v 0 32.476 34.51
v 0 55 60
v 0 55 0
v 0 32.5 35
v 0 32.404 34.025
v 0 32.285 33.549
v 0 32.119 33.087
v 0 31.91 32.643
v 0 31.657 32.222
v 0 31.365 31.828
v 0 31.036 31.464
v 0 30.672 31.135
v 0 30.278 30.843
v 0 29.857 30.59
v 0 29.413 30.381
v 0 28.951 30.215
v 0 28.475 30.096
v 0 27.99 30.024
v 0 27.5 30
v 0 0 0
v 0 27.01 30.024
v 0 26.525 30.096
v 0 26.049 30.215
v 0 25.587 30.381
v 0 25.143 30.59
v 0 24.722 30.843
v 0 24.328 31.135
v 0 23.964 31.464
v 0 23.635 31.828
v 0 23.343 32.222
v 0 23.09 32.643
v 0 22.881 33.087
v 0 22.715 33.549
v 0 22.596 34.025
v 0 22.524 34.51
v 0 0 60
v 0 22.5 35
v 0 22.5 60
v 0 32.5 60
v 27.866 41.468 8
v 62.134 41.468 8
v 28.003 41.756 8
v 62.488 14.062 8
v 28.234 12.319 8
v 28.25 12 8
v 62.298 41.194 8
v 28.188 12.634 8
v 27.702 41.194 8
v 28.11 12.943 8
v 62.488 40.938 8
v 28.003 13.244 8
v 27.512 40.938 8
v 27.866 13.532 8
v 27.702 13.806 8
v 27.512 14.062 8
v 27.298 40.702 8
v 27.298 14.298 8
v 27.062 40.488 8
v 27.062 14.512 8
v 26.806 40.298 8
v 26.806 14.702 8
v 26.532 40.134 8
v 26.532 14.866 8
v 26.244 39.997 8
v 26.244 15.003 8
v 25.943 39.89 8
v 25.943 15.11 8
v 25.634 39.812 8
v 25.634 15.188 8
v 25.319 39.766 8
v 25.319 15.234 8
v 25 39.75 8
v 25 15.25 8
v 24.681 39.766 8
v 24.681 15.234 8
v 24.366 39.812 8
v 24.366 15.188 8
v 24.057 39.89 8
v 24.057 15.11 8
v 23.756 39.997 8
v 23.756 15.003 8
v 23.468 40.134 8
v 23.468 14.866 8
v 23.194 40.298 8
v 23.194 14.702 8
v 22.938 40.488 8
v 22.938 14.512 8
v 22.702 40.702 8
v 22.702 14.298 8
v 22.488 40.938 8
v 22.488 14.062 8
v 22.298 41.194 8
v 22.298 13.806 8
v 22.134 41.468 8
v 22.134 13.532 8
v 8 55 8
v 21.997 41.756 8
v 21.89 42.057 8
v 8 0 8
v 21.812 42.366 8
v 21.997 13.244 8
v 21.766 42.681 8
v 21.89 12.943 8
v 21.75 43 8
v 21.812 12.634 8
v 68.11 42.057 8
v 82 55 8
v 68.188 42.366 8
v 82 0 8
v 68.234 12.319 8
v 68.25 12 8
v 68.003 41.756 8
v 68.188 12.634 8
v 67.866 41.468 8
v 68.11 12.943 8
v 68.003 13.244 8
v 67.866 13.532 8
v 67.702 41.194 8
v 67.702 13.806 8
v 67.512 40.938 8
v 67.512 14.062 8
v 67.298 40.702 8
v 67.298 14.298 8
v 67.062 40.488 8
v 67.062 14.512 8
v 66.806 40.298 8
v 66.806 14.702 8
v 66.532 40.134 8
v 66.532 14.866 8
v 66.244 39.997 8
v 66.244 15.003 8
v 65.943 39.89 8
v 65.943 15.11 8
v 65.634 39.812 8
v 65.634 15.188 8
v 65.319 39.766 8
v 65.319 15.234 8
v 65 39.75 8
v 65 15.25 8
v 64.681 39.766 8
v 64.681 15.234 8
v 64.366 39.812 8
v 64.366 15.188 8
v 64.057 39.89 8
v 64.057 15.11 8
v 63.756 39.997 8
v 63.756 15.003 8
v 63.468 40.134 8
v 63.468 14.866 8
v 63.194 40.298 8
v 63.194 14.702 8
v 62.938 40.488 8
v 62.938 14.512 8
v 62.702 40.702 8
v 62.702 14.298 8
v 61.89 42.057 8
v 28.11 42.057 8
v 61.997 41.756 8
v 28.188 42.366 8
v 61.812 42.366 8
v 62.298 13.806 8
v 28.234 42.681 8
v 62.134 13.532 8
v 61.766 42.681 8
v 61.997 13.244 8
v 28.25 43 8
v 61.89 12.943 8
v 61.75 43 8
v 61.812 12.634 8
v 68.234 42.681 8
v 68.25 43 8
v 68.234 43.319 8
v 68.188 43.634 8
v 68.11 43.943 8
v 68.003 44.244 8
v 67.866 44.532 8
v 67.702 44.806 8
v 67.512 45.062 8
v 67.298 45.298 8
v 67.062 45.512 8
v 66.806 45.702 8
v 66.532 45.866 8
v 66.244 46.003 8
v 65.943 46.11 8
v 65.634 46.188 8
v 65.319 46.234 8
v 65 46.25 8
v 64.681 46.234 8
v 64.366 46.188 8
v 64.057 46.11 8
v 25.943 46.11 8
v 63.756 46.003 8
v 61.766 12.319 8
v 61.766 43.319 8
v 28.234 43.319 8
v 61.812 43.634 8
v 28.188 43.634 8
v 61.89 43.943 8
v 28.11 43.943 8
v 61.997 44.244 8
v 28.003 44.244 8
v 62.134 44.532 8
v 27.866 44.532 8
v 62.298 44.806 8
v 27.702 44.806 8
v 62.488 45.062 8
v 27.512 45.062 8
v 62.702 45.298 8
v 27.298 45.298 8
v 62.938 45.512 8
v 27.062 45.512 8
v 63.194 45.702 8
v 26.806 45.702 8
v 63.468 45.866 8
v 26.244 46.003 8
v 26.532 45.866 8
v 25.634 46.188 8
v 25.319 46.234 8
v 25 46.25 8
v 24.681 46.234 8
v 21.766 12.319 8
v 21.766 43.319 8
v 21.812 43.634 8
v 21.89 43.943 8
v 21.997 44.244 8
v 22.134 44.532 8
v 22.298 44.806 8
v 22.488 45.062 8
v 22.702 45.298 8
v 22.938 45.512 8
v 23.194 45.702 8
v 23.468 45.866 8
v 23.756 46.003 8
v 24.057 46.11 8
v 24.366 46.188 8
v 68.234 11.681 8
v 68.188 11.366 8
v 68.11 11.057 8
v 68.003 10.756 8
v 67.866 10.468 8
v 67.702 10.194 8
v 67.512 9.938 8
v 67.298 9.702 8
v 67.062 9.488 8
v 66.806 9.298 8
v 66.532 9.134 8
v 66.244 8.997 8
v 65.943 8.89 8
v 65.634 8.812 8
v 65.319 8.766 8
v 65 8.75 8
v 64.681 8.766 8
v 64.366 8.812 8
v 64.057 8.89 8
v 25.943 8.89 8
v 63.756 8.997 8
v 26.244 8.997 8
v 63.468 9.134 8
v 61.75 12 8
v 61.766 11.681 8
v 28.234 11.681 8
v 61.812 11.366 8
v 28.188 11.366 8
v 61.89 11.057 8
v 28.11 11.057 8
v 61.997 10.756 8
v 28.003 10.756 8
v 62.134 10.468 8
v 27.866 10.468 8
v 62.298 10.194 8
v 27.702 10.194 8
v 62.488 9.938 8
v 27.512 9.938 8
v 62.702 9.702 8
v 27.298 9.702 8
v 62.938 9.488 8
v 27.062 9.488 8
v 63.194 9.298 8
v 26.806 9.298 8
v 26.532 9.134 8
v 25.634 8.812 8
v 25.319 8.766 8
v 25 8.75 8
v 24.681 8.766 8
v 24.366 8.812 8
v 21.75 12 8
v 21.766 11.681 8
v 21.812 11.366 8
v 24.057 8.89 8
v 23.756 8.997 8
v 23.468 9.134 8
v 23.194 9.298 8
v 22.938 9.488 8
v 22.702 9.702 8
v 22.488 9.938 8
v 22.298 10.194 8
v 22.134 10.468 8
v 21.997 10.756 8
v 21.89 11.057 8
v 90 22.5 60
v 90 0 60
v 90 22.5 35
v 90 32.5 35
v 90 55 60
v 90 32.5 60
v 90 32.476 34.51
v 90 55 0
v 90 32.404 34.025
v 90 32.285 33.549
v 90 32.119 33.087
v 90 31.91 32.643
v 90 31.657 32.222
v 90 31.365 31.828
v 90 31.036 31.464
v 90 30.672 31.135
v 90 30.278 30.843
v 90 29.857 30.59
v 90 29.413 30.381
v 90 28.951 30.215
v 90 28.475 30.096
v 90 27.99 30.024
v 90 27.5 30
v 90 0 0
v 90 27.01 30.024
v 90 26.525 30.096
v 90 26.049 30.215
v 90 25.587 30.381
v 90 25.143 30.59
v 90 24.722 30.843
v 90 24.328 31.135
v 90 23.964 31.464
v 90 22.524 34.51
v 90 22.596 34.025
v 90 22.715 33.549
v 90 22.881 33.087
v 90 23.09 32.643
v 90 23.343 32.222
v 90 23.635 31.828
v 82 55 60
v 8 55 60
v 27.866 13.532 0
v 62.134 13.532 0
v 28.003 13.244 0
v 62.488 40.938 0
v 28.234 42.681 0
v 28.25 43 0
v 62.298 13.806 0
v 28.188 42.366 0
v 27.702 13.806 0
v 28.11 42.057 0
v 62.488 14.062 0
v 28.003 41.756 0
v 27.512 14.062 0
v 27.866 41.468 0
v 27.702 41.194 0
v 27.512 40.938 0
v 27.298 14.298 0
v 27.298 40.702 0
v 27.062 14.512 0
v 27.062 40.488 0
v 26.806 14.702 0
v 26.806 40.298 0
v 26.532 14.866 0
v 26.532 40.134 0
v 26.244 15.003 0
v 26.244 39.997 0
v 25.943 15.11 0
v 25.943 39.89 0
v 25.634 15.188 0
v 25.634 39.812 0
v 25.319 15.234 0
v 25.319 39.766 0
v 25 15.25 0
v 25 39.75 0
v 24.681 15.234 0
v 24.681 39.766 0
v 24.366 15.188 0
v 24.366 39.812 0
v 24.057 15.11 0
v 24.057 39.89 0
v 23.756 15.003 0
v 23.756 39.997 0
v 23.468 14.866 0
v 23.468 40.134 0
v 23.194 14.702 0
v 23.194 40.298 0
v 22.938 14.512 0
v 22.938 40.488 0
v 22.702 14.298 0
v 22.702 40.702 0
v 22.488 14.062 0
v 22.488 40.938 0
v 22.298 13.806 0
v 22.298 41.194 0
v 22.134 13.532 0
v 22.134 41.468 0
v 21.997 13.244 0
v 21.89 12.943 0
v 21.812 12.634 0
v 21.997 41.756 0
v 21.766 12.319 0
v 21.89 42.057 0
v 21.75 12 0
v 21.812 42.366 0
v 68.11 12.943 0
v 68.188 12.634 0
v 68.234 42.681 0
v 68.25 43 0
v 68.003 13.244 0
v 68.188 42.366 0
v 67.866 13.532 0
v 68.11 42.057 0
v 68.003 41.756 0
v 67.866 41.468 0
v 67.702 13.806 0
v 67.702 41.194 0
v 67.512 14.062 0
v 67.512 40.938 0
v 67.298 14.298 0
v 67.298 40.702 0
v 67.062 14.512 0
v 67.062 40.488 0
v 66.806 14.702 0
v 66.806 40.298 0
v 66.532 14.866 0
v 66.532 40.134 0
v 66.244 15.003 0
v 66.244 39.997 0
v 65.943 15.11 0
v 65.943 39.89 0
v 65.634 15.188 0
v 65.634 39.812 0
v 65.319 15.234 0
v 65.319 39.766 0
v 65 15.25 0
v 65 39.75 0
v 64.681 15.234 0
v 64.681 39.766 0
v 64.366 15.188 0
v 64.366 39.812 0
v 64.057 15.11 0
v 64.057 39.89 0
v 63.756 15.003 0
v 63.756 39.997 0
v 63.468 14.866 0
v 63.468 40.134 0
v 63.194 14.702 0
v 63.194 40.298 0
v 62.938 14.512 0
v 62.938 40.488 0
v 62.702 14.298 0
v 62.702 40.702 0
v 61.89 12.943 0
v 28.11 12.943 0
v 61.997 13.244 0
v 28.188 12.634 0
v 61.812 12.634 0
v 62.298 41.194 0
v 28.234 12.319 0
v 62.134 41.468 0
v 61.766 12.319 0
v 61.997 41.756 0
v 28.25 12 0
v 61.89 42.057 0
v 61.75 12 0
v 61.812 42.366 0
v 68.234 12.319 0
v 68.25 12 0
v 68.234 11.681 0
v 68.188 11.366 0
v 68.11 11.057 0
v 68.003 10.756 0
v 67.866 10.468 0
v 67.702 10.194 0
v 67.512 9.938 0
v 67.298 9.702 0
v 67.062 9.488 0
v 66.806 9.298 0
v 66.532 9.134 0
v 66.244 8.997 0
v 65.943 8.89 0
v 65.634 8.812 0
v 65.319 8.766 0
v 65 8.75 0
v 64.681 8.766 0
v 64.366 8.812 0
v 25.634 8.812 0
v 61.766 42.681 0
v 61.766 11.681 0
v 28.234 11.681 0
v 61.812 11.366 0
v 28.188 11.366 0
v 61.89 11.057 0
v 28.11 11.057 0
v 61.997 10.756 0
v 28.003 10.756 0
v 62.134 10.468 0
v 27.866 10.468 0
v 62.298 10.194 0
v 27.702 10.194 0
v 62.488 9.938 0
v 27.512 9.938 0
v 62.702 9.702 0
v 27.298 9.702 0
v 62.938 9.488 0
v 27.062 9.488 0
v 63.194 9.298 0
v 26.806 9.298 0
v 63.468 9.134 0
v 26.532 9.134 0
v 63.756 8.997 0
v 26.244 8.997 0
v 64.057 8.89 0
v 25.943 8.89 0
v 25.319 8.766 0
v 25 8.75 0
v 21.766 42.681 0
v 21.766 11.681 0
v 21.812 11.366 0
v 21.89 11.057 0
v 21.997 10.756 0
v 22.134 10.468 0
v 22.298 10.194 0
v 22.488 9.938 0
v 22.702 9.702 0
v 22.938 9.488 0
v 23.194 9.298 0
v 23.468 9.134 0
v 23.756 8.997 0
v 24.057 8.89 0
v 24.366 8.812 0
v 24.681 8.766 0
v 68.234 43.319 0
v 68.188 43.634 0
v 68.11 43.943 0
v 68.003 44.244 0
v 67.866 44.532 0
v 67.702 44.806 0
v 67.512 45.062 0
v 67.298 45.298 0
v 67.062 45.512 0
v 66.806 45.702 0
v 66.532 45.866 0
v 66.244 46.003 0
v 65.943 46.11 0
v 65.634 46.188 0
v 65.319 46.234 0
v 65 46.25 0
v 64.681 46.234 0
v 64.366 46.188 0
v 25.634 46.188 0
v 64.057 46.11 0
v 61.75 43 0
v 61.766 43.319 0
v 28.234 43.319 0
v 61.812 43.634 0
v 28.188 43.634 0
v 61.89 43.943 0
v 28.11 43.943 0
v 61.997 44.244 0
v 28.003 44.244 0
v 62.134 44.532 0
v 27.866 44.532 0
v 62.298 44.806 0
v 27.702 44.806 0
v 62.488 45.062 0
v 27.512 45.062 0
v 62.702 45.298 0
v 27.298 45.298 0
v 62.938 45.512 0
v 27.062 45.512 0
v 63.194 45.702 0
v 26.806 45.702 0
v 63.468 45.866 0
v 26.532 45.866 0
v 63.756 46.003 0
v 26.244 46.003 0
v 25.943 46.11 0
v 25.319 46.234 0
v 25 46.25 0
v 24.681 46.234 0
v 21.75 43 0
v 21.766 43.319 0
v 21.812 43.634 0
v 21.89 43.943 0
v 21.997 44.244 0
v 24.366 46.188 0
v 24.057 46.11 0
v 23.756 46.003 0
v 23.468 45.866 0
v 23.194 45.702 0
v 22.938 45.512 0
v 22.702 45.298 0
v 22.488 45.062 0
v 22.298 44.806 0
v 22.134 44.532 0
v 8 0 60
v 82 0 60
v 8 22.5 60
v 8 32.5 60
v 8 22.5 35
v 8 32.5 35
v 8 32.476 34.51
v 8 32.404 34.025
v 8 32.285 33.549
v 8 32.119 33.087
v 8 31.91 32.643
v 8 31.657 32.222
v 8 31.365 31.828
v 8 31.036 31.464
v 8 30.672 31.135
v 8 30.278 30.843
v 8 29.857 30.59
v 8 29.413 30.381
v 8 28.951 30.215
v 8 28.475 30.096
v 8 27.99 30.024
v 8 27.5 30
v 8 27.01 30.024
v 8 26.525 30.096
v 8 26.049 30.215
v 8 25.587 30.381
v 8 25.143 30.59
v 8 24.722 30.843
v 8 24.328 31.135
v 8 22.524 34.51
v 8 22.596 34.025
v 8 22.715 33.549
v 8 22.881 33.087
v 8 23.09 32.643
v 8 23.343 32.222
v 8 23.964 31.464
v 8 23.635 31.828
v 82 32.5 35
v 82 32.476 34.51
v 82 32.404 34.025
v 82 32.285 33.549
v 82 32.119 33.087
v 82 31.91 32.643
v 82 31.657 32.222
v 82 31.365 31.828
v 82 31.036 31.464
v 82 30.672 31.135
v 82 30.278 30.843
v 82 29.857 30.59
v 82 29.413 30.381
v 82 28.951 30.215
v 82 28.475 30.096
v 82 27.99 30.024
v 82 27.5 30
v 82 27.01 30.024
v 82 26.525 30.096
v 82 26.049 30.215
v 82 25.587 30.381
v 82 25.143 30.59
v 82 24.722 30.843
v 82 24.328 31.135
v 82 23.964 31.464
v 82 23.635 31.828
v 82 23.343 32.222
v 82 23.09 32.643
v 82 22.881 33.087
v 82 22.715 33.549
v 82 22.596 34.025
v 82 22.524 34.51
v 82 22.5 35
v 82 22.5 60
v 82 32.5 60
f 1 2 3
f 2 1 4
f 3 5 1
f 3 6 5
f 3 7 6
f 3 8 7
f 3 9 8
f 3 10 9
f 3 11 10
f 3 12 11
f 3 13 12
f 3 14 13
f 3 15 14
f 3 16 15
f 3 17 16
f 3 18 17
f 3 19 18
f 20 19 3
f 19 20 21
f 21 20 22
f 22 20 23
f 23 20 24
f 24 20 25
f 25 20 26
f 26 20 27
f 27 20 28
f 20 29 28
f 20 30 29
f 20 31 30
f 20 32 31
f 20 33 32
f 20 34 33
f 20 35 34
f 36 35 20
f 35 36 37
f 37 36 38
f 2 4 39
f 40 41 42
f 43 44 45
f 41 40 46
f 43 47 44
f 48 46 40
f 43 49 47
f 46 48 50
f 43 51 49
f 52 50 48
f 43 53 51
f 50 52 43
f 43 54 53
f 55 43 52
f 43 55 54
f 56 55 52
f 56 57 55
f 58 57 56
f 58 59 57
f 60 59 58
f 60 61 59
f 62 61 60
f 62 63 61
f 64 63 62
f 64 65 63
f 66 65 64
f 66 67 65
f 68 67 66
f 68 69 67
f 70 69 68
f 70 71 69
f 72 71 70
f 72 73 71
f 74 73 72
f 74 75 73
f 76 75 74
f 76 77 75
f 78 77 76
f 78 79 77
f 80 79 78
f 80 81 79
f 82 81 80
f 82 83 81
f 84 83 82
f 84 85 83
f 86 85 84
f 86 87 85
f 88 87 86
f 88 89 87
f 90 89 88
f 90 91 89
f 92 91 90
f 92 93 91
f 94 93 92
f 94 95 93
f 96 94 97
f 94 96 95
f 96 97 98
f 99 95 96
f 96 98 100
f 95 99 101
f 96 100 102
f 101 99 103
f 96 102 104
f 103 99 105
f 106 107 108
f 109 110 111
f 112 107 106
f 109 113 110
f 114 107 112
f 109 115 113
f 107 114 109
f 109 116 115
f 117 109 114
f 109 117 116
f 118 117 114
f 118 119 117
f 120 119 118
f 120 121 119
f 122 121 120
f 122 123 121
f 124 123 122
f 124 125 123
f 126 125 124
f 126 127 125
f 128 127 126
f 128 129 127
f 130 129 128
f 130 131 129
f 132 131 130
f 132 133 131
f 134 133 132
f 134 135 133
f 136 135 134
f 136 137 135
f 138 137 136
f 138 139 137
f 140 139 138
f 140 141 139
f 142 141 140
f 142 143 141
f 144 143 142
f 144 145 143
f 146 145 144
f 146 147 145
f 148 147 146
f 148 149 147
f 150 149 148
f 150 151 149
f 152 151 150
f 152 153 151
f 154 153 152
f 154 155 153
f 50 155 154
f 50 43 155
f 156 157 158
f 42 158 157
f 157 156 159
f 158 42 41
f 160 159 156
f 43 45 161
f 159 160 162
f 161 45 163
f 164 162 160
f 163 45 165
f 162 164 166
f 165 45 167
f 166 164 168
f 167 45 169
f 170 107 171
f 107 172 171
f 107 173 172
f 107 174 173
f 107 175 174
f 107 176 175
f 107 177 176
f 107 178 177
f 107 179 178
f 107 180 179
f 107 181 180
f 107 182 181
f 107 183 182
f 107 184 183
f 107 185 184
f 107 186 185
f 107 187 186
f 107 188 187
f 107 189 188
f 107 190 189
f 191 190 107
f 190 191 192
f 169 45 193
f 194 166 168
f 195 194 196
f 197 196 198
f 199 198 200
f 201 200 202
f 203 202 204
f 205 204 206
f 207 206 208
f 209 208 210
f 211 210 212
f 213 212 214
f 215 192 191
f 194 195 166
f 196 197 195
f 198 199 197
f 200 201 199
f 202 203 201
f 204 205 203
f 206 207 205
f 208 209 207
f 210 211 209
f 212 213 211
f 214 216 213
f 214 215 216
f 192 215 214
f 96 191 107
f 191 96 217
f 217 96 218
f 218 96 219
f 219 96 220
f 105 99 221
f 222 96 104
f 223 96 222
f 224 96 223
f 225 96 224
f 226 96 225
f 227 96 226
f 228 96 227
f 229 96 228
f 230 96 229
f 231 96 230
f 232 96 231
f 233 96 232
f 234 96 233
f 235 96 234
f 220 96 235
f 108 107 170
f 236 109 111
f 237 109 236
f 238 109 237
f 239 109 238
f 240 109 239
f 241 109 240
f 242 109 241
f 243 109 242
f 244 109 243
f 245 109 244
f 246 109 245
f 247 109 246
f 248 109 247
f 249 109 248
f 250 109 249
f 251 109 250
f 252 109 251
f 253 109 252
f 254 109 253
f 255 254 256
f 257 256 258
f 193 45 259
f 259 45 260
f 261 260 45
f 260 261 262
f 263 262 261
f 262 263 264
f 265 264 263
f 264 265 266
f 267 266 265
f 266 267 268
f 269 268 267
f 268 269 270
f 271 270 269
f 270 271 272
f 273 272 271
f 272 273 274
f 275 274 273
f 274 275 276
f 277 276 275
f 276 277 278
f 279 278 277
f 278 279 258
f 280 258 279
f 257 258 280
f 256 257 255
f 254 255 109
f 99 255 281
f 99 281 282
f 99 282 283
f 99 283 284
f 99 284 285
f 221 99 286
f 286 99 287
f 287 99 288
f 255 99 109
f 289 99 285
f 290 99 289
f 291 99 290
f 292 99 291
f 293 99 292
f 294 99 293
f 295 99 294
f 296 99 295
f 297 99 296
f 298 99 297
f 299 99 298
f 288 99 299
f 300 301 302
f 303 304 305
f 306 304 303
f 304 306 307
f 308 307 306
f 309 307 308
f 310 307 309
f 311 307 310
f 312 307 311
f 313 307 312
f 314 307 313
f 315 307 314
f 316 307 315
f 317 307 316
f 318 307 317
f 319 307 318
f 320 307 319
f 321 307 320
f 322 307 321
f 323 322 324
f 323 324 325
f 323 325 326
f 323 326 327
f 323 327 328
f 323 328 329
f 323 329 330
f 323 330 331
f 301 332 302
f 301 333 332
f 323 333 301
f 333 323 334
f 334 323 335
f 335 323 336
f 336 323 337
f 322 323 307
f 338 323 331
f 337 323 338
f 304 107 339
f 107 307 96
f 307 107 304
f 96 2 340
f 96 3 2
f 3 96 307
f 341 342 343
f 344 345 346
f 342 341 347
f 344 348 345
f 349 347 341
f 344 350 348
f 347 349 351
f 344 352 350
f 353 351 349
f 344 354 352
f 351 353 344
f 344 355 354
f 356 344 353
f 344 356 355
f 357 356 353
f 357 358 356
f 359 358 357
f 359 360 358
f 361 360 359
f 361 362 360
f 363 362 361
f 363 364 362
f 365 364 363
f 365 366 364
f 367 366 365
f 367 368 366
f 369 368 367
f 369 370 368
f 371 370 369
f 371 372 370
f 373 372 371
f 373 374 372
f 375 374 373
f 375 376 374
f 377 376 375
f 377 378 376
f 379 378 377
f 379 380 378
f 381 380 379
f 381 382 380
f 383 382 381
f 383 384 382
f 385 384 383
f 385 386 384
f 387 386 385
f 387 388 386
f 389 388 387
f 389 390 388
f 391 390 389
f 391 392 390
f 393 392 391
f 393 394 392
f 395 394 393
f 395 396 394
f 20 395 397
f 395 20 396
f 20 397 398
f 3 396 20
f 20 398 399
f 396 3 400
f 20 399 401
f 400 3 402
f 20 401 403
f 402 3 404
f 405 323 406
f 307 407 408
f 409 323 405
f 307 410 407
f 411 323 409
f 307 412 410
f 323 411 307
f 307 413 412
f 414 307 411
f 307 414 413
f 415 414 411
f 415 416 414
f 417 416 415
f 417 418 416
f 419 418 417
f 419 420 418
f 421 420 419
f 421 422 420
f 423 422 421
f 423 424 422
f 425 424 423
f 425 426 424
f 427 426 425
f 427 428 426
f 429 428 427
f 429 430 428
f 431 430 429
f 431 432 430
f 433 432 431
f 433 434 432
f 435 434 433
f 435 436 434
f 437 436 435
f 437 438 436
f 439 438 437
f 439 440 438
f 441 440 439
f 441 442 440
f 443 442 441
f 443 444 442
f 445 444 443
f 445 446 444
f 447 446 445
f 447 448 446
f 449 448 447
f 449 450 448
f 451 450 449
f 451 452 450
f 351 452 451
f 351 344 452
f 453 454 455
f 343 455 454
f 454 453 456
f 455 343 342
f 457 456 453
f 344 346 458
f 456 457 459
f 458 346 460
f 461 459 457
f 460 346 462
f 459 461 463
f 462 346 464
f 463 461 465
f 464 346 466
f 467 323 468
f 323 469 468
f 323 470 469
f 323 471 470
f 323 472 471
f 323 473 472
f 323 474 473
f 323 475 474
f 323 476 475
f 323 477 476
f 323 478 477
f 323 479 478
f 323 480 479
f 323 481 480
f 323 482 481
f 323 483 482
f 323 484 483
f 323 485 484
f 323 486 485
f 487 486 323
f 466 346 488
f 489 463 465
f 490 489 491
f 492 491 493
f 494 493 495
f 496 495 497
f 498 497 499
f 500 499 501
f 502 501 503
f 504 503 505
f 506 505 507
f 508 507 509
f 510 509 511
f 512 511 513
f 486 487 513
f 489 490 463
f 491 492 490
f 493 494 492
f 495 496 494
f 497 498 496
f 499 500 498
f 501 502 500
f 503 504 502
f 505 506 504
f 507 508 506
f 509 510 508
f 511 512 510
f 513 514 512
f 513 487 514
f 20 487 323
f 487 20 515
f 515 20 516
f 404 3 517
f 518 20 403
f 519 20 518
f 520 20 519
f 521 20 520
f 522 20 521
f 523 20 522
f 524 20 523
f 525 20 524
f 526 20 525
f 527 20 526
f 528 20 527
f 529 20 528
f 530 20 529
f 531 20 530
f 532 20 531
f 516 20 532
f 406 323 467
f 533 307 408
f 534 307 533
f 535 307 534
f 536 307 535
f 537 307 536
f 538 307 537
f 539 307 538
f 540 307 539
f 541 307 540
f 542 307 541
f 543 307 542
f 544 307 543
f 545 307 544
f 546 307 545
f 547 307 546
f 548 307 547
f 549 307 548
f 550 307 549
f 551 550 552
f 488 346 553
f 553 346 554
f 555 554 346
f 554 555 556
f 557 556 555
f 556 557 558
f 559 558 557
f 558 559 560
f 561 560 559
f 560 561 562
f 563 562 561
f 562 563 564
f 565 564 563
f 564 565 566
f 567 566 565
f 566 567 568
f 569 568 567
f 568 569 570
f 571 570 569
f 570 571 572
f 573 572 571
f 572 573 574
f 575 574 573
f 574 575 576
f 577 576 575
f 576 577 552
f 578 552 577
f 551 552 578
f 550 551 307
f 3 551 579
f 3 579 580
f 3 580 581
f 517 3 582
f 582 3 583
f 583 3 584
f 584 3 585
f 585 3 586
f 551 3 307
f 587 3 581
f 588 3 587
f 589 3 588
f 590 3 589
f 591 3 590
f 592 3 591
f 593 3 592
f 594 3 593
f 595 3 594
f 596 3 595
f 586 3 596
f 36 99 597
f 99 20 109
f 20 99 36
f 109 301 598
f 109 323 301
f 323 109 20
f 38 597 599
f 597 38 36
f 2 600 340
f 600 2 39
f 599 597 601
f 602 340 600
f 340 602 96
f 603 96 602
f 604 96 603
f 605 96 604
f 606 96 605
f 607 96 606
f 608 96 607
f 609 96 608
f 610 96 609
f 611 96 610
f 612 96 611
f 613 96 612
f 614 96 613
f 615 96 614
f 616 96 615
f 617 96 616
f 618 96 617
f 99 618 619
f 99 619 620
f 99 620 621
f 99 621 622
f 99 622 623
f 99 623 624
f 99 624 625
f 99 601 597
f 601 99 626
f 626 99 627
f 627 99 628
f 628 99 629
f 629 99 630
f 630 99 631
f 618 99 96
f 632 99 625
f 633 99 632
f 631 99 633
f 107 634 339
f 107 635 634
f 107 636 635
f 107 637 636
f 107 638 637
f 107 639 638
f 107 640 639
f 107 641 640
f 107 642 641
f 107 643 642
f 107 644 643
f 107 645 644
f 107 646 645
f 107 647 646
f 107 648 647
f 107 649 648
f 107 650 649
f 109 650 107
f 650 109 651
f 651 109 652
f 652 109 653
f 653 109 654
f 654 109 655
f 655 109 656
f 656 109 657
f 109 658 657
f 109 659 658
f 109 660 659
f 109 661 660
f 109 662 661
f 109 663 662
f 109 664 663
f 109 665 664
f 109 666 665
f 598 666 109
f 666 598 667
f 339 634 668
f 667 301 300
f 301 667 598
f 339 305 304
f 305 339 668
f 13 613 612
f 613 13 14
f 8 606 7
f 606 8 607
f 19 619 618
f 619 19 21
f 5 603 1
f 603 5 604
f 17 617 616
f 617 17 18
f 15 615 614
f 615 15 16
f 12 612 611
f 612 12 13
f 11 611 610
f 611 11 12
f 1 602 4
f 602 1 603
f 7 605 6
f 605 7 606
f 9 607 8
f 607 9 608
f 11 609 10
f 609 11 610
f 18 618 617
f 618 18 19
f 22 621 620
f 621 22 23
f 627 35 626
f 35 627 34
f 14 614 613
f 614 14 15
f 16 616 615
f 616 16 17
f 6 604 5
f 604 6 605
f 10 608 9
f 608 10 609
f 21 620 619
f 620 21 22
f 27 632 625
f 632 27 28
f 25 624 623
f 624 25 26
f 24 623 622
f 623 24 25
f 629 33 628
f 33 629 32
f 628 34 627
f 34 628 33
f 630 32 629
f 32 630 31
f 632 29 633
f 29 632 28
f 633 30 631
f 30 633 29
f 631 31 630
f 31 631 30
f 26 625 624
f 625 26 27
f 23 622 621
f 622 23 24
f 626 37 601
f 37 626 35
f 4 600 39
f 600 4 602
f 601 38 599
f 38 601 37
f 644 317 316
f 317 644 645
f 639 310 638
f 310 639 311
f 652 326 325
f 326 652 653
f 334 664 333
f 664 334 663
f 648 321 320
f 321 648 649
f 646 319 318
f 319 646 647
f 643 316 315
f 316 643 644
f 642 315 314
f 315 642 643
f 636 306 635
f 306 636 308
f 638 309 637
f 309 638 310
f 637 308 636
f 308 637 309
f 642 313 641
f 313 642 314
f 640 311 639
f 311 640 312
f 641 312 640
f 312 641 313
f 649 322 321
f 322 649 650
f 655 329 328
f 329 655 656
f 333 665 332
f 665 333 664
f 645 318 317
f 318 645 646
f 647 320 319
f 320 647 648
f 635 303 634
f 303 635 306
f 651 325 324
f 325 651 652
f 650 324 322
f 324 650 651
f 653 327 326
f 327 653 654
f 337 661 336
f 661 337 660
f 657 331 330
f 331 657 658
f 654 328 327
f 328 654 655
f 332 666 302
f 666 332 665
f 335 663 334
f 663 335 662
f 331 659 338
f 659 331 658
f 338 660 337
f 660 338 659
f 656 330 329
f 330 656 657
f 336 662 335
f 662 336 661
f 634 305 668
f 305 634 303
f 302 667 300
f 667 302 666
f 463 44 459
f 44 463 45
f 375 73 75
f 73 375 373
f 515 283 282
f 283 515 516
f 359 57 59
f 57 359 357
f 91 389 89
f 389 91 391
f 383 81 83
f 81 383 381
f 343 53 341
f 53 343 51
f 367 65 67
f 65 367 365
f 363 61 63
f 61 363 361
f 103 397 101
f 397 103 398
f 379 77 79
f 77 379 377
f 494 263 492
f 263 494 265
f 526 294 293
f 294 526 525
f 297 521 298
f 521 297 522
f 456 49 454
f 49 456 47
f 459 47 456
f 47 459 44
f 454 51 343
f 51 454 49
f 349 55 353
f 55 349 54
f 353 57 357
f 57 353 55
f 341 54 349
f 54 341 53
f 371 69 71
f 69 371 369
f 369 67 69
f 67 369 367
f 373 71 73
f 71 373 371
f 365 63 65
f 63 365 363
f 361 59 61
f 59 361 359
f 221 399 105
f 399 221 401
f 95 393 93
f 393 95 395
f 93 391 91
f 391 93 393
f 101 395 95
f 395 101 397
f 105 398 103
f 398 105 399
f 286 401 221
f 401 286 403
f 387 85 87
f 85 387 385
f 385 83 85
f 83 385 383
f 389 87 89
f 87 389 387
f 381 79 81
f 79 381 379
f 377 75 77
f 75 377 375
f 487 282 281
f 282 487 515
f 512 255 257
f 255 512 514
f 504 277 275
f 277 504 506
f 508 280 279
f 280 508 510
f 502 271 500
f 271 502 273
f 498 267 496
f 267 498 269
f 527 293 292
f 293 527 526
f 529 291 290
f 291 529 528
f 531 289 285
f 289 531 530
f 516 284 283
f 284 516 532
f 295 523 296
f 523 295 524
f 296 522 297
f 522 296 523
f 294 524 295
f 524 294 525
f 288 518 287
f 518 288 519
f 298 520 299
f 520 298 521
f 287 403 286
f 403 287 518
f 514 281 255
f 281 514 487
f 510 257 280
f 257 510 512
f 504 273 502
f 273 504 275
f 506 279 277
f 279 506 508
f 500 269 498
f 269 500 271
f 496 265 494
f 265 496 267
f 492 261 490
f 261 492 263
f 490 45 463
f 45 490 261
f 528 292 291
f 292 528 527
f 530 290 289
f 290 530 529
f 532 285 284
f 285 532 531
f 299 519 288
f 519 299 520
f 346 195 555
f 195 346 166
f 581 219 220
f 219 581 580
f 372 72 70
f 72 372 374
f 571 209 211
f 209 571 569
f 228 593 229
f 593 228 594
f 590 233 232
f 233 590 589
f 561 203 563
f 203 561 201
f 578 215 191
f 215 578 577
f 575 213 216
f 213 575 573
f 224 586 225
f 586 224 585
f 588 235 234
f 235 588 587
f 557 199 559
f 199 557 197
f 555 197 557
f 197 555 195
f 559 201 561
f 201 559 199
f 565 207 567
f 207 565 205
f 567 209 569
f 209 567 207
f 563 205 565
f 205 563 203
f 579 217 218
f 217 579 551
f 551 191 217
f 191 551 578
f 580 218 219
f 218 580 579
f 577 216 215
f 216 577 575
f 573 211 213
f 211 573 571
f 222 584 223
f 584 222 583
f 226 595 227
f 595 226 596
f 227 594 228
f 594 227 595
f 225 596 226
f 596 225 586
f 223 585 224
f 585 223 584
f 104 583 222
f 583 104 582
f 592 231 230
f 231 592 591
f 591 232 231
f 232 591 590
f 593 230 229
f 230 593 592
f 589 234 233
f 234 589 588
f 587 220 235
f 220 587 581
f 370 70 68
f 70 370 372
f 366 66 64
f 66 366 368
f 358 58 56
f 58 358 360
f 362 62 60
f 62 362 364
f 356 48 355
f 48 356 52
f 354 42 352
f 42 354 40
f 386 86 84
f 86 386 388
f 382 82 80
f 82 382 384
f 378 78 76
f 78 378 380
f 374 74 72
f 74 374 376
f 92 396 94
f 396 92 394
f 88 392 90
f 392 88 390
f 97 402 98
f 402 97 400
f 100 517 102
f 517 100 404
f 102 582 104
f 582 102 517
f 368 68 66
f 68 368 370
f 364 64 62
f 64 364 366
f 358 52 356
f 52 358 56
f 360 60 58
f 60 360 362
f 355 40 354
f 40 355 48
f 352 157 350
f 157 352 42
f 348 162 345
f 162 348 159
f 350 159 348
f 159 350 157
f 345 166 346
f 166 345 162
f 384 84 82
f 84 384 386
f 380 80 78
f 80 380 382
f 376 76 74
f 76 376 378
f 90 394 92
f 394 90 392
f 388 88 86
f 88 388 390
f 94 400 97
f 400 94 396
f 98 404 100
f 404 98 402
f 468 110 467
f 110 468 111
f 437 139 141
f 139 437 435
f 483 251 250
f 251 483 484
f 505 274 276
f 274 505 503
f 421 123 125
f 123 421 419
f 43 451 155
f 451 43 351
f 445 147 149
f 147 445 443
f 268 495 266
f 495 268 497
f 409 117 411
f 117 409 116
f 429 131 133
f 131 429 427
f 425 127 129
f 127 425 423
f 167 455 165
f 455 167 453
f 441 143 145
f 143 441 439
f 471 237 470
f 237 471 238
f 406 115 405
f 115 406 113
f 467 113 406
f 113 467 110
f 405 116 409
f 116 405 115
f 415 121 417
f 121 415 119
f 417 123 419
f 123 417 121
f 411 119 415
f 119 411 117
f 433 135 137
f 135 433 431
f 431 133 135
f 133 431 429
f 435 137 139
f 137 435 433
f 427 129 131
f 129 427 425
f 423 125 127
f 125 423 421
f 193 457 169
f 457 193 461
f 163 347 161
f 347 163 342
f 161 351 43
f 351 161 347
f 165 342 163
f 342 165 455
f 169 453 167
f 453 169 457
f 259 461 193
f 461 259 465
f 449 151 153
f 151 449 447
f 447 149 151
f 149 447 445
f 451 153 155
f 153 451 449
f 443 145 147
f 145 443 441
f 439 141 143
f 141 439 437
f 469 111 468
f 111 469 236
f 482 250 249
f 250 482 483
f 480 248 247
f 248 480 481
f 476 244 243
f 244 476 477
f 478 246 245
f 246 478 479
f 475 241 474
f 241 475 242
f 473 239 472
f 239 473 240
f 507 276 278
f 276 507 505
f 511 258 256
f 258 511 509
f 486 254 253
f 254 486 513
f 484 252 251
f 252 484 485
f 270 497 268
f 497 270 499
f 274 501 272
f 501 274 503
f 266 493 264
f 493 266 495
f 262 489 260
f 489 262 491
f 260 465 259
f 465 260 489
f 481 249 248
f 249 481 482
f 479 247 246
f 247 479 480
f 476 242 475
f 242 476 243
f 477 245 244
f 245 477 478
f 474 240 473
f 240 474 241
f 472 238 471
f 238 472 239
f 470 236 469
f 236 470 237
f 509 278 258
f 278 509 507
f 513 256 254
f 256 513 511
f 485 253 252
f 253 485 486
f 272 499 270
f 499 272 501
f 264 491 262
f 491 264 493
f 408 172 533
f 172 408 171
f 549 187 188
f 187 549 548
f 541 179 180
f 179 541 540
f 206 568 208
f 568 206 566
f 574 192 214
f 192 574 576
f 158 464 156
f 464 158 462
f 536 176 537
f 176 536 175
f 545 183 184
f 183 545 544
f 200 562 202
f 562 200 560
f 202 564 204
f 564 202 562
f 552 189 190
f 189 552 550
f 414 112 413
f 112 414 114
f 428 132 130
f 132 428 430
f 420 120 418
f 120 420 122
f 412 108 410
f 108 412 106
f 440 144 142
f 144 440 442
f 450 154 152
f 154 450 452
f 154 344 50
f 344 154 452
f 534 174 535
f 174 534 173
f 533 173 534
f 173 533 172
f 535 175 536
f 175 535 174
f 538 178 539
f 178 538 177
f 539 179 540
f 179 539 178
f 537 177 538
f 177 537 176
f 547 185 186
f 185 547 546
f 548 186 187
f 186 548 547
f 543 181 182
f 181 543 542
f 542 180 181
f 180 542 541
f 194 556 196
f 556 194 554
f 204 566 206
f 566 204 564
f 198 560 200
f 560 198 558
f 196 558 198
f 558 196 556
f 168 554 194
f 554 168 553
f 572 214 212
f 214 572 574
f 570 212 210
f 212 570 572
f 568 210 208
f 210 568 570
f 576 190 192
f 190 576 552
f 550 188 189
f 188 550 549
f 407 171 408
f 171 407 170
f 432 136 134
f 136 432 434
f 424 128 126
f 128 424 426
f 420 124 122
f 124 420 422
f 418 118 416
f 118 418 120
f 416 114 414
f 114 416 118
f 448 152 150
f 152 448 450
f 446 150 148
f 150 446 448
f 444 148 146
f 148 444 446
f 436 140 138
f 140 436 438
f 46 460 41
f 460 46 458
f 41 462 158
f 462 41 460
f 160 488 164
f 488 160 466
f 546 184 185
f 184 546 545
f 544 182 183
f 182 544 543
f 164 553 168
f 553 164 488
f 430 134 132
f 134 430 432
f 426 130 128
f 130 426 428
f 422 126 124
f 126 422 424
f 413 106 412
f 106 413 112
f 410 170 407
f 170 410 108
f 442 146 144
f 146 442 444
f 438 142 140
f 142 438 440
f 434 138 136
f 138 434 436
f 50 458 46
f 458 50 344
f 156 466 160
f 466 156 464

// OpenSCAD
// Original MechIntel educational model. CC0-1.0. Units: mm.
// Not a standardized or load-rated component.
$fn=96;
width=90; depth=55; height=60; wall=8; slot=10; axle_height=35;
$fn=64;
difference(){
 union(){cube([width,depth,wall]);cube([wall,depth,height]);translate([width-wall,0,0]) cube([wall,depth,height]);}
 for(x=[-1,width-wall-1]){
 translate([x,depth/2,axle_height]) rotate([0,90,0]) cylinder(d=slot,h=wall+2);
 translate([x,depth/2-slot/2,axle_height]) cube([wall+2,slot,height-axle_height+1]);
 }
 for(x=[25,65]) for(y=[12,43]) translate([x,y,-1]) cylinder(d=6.5,h=wall+2);
}
